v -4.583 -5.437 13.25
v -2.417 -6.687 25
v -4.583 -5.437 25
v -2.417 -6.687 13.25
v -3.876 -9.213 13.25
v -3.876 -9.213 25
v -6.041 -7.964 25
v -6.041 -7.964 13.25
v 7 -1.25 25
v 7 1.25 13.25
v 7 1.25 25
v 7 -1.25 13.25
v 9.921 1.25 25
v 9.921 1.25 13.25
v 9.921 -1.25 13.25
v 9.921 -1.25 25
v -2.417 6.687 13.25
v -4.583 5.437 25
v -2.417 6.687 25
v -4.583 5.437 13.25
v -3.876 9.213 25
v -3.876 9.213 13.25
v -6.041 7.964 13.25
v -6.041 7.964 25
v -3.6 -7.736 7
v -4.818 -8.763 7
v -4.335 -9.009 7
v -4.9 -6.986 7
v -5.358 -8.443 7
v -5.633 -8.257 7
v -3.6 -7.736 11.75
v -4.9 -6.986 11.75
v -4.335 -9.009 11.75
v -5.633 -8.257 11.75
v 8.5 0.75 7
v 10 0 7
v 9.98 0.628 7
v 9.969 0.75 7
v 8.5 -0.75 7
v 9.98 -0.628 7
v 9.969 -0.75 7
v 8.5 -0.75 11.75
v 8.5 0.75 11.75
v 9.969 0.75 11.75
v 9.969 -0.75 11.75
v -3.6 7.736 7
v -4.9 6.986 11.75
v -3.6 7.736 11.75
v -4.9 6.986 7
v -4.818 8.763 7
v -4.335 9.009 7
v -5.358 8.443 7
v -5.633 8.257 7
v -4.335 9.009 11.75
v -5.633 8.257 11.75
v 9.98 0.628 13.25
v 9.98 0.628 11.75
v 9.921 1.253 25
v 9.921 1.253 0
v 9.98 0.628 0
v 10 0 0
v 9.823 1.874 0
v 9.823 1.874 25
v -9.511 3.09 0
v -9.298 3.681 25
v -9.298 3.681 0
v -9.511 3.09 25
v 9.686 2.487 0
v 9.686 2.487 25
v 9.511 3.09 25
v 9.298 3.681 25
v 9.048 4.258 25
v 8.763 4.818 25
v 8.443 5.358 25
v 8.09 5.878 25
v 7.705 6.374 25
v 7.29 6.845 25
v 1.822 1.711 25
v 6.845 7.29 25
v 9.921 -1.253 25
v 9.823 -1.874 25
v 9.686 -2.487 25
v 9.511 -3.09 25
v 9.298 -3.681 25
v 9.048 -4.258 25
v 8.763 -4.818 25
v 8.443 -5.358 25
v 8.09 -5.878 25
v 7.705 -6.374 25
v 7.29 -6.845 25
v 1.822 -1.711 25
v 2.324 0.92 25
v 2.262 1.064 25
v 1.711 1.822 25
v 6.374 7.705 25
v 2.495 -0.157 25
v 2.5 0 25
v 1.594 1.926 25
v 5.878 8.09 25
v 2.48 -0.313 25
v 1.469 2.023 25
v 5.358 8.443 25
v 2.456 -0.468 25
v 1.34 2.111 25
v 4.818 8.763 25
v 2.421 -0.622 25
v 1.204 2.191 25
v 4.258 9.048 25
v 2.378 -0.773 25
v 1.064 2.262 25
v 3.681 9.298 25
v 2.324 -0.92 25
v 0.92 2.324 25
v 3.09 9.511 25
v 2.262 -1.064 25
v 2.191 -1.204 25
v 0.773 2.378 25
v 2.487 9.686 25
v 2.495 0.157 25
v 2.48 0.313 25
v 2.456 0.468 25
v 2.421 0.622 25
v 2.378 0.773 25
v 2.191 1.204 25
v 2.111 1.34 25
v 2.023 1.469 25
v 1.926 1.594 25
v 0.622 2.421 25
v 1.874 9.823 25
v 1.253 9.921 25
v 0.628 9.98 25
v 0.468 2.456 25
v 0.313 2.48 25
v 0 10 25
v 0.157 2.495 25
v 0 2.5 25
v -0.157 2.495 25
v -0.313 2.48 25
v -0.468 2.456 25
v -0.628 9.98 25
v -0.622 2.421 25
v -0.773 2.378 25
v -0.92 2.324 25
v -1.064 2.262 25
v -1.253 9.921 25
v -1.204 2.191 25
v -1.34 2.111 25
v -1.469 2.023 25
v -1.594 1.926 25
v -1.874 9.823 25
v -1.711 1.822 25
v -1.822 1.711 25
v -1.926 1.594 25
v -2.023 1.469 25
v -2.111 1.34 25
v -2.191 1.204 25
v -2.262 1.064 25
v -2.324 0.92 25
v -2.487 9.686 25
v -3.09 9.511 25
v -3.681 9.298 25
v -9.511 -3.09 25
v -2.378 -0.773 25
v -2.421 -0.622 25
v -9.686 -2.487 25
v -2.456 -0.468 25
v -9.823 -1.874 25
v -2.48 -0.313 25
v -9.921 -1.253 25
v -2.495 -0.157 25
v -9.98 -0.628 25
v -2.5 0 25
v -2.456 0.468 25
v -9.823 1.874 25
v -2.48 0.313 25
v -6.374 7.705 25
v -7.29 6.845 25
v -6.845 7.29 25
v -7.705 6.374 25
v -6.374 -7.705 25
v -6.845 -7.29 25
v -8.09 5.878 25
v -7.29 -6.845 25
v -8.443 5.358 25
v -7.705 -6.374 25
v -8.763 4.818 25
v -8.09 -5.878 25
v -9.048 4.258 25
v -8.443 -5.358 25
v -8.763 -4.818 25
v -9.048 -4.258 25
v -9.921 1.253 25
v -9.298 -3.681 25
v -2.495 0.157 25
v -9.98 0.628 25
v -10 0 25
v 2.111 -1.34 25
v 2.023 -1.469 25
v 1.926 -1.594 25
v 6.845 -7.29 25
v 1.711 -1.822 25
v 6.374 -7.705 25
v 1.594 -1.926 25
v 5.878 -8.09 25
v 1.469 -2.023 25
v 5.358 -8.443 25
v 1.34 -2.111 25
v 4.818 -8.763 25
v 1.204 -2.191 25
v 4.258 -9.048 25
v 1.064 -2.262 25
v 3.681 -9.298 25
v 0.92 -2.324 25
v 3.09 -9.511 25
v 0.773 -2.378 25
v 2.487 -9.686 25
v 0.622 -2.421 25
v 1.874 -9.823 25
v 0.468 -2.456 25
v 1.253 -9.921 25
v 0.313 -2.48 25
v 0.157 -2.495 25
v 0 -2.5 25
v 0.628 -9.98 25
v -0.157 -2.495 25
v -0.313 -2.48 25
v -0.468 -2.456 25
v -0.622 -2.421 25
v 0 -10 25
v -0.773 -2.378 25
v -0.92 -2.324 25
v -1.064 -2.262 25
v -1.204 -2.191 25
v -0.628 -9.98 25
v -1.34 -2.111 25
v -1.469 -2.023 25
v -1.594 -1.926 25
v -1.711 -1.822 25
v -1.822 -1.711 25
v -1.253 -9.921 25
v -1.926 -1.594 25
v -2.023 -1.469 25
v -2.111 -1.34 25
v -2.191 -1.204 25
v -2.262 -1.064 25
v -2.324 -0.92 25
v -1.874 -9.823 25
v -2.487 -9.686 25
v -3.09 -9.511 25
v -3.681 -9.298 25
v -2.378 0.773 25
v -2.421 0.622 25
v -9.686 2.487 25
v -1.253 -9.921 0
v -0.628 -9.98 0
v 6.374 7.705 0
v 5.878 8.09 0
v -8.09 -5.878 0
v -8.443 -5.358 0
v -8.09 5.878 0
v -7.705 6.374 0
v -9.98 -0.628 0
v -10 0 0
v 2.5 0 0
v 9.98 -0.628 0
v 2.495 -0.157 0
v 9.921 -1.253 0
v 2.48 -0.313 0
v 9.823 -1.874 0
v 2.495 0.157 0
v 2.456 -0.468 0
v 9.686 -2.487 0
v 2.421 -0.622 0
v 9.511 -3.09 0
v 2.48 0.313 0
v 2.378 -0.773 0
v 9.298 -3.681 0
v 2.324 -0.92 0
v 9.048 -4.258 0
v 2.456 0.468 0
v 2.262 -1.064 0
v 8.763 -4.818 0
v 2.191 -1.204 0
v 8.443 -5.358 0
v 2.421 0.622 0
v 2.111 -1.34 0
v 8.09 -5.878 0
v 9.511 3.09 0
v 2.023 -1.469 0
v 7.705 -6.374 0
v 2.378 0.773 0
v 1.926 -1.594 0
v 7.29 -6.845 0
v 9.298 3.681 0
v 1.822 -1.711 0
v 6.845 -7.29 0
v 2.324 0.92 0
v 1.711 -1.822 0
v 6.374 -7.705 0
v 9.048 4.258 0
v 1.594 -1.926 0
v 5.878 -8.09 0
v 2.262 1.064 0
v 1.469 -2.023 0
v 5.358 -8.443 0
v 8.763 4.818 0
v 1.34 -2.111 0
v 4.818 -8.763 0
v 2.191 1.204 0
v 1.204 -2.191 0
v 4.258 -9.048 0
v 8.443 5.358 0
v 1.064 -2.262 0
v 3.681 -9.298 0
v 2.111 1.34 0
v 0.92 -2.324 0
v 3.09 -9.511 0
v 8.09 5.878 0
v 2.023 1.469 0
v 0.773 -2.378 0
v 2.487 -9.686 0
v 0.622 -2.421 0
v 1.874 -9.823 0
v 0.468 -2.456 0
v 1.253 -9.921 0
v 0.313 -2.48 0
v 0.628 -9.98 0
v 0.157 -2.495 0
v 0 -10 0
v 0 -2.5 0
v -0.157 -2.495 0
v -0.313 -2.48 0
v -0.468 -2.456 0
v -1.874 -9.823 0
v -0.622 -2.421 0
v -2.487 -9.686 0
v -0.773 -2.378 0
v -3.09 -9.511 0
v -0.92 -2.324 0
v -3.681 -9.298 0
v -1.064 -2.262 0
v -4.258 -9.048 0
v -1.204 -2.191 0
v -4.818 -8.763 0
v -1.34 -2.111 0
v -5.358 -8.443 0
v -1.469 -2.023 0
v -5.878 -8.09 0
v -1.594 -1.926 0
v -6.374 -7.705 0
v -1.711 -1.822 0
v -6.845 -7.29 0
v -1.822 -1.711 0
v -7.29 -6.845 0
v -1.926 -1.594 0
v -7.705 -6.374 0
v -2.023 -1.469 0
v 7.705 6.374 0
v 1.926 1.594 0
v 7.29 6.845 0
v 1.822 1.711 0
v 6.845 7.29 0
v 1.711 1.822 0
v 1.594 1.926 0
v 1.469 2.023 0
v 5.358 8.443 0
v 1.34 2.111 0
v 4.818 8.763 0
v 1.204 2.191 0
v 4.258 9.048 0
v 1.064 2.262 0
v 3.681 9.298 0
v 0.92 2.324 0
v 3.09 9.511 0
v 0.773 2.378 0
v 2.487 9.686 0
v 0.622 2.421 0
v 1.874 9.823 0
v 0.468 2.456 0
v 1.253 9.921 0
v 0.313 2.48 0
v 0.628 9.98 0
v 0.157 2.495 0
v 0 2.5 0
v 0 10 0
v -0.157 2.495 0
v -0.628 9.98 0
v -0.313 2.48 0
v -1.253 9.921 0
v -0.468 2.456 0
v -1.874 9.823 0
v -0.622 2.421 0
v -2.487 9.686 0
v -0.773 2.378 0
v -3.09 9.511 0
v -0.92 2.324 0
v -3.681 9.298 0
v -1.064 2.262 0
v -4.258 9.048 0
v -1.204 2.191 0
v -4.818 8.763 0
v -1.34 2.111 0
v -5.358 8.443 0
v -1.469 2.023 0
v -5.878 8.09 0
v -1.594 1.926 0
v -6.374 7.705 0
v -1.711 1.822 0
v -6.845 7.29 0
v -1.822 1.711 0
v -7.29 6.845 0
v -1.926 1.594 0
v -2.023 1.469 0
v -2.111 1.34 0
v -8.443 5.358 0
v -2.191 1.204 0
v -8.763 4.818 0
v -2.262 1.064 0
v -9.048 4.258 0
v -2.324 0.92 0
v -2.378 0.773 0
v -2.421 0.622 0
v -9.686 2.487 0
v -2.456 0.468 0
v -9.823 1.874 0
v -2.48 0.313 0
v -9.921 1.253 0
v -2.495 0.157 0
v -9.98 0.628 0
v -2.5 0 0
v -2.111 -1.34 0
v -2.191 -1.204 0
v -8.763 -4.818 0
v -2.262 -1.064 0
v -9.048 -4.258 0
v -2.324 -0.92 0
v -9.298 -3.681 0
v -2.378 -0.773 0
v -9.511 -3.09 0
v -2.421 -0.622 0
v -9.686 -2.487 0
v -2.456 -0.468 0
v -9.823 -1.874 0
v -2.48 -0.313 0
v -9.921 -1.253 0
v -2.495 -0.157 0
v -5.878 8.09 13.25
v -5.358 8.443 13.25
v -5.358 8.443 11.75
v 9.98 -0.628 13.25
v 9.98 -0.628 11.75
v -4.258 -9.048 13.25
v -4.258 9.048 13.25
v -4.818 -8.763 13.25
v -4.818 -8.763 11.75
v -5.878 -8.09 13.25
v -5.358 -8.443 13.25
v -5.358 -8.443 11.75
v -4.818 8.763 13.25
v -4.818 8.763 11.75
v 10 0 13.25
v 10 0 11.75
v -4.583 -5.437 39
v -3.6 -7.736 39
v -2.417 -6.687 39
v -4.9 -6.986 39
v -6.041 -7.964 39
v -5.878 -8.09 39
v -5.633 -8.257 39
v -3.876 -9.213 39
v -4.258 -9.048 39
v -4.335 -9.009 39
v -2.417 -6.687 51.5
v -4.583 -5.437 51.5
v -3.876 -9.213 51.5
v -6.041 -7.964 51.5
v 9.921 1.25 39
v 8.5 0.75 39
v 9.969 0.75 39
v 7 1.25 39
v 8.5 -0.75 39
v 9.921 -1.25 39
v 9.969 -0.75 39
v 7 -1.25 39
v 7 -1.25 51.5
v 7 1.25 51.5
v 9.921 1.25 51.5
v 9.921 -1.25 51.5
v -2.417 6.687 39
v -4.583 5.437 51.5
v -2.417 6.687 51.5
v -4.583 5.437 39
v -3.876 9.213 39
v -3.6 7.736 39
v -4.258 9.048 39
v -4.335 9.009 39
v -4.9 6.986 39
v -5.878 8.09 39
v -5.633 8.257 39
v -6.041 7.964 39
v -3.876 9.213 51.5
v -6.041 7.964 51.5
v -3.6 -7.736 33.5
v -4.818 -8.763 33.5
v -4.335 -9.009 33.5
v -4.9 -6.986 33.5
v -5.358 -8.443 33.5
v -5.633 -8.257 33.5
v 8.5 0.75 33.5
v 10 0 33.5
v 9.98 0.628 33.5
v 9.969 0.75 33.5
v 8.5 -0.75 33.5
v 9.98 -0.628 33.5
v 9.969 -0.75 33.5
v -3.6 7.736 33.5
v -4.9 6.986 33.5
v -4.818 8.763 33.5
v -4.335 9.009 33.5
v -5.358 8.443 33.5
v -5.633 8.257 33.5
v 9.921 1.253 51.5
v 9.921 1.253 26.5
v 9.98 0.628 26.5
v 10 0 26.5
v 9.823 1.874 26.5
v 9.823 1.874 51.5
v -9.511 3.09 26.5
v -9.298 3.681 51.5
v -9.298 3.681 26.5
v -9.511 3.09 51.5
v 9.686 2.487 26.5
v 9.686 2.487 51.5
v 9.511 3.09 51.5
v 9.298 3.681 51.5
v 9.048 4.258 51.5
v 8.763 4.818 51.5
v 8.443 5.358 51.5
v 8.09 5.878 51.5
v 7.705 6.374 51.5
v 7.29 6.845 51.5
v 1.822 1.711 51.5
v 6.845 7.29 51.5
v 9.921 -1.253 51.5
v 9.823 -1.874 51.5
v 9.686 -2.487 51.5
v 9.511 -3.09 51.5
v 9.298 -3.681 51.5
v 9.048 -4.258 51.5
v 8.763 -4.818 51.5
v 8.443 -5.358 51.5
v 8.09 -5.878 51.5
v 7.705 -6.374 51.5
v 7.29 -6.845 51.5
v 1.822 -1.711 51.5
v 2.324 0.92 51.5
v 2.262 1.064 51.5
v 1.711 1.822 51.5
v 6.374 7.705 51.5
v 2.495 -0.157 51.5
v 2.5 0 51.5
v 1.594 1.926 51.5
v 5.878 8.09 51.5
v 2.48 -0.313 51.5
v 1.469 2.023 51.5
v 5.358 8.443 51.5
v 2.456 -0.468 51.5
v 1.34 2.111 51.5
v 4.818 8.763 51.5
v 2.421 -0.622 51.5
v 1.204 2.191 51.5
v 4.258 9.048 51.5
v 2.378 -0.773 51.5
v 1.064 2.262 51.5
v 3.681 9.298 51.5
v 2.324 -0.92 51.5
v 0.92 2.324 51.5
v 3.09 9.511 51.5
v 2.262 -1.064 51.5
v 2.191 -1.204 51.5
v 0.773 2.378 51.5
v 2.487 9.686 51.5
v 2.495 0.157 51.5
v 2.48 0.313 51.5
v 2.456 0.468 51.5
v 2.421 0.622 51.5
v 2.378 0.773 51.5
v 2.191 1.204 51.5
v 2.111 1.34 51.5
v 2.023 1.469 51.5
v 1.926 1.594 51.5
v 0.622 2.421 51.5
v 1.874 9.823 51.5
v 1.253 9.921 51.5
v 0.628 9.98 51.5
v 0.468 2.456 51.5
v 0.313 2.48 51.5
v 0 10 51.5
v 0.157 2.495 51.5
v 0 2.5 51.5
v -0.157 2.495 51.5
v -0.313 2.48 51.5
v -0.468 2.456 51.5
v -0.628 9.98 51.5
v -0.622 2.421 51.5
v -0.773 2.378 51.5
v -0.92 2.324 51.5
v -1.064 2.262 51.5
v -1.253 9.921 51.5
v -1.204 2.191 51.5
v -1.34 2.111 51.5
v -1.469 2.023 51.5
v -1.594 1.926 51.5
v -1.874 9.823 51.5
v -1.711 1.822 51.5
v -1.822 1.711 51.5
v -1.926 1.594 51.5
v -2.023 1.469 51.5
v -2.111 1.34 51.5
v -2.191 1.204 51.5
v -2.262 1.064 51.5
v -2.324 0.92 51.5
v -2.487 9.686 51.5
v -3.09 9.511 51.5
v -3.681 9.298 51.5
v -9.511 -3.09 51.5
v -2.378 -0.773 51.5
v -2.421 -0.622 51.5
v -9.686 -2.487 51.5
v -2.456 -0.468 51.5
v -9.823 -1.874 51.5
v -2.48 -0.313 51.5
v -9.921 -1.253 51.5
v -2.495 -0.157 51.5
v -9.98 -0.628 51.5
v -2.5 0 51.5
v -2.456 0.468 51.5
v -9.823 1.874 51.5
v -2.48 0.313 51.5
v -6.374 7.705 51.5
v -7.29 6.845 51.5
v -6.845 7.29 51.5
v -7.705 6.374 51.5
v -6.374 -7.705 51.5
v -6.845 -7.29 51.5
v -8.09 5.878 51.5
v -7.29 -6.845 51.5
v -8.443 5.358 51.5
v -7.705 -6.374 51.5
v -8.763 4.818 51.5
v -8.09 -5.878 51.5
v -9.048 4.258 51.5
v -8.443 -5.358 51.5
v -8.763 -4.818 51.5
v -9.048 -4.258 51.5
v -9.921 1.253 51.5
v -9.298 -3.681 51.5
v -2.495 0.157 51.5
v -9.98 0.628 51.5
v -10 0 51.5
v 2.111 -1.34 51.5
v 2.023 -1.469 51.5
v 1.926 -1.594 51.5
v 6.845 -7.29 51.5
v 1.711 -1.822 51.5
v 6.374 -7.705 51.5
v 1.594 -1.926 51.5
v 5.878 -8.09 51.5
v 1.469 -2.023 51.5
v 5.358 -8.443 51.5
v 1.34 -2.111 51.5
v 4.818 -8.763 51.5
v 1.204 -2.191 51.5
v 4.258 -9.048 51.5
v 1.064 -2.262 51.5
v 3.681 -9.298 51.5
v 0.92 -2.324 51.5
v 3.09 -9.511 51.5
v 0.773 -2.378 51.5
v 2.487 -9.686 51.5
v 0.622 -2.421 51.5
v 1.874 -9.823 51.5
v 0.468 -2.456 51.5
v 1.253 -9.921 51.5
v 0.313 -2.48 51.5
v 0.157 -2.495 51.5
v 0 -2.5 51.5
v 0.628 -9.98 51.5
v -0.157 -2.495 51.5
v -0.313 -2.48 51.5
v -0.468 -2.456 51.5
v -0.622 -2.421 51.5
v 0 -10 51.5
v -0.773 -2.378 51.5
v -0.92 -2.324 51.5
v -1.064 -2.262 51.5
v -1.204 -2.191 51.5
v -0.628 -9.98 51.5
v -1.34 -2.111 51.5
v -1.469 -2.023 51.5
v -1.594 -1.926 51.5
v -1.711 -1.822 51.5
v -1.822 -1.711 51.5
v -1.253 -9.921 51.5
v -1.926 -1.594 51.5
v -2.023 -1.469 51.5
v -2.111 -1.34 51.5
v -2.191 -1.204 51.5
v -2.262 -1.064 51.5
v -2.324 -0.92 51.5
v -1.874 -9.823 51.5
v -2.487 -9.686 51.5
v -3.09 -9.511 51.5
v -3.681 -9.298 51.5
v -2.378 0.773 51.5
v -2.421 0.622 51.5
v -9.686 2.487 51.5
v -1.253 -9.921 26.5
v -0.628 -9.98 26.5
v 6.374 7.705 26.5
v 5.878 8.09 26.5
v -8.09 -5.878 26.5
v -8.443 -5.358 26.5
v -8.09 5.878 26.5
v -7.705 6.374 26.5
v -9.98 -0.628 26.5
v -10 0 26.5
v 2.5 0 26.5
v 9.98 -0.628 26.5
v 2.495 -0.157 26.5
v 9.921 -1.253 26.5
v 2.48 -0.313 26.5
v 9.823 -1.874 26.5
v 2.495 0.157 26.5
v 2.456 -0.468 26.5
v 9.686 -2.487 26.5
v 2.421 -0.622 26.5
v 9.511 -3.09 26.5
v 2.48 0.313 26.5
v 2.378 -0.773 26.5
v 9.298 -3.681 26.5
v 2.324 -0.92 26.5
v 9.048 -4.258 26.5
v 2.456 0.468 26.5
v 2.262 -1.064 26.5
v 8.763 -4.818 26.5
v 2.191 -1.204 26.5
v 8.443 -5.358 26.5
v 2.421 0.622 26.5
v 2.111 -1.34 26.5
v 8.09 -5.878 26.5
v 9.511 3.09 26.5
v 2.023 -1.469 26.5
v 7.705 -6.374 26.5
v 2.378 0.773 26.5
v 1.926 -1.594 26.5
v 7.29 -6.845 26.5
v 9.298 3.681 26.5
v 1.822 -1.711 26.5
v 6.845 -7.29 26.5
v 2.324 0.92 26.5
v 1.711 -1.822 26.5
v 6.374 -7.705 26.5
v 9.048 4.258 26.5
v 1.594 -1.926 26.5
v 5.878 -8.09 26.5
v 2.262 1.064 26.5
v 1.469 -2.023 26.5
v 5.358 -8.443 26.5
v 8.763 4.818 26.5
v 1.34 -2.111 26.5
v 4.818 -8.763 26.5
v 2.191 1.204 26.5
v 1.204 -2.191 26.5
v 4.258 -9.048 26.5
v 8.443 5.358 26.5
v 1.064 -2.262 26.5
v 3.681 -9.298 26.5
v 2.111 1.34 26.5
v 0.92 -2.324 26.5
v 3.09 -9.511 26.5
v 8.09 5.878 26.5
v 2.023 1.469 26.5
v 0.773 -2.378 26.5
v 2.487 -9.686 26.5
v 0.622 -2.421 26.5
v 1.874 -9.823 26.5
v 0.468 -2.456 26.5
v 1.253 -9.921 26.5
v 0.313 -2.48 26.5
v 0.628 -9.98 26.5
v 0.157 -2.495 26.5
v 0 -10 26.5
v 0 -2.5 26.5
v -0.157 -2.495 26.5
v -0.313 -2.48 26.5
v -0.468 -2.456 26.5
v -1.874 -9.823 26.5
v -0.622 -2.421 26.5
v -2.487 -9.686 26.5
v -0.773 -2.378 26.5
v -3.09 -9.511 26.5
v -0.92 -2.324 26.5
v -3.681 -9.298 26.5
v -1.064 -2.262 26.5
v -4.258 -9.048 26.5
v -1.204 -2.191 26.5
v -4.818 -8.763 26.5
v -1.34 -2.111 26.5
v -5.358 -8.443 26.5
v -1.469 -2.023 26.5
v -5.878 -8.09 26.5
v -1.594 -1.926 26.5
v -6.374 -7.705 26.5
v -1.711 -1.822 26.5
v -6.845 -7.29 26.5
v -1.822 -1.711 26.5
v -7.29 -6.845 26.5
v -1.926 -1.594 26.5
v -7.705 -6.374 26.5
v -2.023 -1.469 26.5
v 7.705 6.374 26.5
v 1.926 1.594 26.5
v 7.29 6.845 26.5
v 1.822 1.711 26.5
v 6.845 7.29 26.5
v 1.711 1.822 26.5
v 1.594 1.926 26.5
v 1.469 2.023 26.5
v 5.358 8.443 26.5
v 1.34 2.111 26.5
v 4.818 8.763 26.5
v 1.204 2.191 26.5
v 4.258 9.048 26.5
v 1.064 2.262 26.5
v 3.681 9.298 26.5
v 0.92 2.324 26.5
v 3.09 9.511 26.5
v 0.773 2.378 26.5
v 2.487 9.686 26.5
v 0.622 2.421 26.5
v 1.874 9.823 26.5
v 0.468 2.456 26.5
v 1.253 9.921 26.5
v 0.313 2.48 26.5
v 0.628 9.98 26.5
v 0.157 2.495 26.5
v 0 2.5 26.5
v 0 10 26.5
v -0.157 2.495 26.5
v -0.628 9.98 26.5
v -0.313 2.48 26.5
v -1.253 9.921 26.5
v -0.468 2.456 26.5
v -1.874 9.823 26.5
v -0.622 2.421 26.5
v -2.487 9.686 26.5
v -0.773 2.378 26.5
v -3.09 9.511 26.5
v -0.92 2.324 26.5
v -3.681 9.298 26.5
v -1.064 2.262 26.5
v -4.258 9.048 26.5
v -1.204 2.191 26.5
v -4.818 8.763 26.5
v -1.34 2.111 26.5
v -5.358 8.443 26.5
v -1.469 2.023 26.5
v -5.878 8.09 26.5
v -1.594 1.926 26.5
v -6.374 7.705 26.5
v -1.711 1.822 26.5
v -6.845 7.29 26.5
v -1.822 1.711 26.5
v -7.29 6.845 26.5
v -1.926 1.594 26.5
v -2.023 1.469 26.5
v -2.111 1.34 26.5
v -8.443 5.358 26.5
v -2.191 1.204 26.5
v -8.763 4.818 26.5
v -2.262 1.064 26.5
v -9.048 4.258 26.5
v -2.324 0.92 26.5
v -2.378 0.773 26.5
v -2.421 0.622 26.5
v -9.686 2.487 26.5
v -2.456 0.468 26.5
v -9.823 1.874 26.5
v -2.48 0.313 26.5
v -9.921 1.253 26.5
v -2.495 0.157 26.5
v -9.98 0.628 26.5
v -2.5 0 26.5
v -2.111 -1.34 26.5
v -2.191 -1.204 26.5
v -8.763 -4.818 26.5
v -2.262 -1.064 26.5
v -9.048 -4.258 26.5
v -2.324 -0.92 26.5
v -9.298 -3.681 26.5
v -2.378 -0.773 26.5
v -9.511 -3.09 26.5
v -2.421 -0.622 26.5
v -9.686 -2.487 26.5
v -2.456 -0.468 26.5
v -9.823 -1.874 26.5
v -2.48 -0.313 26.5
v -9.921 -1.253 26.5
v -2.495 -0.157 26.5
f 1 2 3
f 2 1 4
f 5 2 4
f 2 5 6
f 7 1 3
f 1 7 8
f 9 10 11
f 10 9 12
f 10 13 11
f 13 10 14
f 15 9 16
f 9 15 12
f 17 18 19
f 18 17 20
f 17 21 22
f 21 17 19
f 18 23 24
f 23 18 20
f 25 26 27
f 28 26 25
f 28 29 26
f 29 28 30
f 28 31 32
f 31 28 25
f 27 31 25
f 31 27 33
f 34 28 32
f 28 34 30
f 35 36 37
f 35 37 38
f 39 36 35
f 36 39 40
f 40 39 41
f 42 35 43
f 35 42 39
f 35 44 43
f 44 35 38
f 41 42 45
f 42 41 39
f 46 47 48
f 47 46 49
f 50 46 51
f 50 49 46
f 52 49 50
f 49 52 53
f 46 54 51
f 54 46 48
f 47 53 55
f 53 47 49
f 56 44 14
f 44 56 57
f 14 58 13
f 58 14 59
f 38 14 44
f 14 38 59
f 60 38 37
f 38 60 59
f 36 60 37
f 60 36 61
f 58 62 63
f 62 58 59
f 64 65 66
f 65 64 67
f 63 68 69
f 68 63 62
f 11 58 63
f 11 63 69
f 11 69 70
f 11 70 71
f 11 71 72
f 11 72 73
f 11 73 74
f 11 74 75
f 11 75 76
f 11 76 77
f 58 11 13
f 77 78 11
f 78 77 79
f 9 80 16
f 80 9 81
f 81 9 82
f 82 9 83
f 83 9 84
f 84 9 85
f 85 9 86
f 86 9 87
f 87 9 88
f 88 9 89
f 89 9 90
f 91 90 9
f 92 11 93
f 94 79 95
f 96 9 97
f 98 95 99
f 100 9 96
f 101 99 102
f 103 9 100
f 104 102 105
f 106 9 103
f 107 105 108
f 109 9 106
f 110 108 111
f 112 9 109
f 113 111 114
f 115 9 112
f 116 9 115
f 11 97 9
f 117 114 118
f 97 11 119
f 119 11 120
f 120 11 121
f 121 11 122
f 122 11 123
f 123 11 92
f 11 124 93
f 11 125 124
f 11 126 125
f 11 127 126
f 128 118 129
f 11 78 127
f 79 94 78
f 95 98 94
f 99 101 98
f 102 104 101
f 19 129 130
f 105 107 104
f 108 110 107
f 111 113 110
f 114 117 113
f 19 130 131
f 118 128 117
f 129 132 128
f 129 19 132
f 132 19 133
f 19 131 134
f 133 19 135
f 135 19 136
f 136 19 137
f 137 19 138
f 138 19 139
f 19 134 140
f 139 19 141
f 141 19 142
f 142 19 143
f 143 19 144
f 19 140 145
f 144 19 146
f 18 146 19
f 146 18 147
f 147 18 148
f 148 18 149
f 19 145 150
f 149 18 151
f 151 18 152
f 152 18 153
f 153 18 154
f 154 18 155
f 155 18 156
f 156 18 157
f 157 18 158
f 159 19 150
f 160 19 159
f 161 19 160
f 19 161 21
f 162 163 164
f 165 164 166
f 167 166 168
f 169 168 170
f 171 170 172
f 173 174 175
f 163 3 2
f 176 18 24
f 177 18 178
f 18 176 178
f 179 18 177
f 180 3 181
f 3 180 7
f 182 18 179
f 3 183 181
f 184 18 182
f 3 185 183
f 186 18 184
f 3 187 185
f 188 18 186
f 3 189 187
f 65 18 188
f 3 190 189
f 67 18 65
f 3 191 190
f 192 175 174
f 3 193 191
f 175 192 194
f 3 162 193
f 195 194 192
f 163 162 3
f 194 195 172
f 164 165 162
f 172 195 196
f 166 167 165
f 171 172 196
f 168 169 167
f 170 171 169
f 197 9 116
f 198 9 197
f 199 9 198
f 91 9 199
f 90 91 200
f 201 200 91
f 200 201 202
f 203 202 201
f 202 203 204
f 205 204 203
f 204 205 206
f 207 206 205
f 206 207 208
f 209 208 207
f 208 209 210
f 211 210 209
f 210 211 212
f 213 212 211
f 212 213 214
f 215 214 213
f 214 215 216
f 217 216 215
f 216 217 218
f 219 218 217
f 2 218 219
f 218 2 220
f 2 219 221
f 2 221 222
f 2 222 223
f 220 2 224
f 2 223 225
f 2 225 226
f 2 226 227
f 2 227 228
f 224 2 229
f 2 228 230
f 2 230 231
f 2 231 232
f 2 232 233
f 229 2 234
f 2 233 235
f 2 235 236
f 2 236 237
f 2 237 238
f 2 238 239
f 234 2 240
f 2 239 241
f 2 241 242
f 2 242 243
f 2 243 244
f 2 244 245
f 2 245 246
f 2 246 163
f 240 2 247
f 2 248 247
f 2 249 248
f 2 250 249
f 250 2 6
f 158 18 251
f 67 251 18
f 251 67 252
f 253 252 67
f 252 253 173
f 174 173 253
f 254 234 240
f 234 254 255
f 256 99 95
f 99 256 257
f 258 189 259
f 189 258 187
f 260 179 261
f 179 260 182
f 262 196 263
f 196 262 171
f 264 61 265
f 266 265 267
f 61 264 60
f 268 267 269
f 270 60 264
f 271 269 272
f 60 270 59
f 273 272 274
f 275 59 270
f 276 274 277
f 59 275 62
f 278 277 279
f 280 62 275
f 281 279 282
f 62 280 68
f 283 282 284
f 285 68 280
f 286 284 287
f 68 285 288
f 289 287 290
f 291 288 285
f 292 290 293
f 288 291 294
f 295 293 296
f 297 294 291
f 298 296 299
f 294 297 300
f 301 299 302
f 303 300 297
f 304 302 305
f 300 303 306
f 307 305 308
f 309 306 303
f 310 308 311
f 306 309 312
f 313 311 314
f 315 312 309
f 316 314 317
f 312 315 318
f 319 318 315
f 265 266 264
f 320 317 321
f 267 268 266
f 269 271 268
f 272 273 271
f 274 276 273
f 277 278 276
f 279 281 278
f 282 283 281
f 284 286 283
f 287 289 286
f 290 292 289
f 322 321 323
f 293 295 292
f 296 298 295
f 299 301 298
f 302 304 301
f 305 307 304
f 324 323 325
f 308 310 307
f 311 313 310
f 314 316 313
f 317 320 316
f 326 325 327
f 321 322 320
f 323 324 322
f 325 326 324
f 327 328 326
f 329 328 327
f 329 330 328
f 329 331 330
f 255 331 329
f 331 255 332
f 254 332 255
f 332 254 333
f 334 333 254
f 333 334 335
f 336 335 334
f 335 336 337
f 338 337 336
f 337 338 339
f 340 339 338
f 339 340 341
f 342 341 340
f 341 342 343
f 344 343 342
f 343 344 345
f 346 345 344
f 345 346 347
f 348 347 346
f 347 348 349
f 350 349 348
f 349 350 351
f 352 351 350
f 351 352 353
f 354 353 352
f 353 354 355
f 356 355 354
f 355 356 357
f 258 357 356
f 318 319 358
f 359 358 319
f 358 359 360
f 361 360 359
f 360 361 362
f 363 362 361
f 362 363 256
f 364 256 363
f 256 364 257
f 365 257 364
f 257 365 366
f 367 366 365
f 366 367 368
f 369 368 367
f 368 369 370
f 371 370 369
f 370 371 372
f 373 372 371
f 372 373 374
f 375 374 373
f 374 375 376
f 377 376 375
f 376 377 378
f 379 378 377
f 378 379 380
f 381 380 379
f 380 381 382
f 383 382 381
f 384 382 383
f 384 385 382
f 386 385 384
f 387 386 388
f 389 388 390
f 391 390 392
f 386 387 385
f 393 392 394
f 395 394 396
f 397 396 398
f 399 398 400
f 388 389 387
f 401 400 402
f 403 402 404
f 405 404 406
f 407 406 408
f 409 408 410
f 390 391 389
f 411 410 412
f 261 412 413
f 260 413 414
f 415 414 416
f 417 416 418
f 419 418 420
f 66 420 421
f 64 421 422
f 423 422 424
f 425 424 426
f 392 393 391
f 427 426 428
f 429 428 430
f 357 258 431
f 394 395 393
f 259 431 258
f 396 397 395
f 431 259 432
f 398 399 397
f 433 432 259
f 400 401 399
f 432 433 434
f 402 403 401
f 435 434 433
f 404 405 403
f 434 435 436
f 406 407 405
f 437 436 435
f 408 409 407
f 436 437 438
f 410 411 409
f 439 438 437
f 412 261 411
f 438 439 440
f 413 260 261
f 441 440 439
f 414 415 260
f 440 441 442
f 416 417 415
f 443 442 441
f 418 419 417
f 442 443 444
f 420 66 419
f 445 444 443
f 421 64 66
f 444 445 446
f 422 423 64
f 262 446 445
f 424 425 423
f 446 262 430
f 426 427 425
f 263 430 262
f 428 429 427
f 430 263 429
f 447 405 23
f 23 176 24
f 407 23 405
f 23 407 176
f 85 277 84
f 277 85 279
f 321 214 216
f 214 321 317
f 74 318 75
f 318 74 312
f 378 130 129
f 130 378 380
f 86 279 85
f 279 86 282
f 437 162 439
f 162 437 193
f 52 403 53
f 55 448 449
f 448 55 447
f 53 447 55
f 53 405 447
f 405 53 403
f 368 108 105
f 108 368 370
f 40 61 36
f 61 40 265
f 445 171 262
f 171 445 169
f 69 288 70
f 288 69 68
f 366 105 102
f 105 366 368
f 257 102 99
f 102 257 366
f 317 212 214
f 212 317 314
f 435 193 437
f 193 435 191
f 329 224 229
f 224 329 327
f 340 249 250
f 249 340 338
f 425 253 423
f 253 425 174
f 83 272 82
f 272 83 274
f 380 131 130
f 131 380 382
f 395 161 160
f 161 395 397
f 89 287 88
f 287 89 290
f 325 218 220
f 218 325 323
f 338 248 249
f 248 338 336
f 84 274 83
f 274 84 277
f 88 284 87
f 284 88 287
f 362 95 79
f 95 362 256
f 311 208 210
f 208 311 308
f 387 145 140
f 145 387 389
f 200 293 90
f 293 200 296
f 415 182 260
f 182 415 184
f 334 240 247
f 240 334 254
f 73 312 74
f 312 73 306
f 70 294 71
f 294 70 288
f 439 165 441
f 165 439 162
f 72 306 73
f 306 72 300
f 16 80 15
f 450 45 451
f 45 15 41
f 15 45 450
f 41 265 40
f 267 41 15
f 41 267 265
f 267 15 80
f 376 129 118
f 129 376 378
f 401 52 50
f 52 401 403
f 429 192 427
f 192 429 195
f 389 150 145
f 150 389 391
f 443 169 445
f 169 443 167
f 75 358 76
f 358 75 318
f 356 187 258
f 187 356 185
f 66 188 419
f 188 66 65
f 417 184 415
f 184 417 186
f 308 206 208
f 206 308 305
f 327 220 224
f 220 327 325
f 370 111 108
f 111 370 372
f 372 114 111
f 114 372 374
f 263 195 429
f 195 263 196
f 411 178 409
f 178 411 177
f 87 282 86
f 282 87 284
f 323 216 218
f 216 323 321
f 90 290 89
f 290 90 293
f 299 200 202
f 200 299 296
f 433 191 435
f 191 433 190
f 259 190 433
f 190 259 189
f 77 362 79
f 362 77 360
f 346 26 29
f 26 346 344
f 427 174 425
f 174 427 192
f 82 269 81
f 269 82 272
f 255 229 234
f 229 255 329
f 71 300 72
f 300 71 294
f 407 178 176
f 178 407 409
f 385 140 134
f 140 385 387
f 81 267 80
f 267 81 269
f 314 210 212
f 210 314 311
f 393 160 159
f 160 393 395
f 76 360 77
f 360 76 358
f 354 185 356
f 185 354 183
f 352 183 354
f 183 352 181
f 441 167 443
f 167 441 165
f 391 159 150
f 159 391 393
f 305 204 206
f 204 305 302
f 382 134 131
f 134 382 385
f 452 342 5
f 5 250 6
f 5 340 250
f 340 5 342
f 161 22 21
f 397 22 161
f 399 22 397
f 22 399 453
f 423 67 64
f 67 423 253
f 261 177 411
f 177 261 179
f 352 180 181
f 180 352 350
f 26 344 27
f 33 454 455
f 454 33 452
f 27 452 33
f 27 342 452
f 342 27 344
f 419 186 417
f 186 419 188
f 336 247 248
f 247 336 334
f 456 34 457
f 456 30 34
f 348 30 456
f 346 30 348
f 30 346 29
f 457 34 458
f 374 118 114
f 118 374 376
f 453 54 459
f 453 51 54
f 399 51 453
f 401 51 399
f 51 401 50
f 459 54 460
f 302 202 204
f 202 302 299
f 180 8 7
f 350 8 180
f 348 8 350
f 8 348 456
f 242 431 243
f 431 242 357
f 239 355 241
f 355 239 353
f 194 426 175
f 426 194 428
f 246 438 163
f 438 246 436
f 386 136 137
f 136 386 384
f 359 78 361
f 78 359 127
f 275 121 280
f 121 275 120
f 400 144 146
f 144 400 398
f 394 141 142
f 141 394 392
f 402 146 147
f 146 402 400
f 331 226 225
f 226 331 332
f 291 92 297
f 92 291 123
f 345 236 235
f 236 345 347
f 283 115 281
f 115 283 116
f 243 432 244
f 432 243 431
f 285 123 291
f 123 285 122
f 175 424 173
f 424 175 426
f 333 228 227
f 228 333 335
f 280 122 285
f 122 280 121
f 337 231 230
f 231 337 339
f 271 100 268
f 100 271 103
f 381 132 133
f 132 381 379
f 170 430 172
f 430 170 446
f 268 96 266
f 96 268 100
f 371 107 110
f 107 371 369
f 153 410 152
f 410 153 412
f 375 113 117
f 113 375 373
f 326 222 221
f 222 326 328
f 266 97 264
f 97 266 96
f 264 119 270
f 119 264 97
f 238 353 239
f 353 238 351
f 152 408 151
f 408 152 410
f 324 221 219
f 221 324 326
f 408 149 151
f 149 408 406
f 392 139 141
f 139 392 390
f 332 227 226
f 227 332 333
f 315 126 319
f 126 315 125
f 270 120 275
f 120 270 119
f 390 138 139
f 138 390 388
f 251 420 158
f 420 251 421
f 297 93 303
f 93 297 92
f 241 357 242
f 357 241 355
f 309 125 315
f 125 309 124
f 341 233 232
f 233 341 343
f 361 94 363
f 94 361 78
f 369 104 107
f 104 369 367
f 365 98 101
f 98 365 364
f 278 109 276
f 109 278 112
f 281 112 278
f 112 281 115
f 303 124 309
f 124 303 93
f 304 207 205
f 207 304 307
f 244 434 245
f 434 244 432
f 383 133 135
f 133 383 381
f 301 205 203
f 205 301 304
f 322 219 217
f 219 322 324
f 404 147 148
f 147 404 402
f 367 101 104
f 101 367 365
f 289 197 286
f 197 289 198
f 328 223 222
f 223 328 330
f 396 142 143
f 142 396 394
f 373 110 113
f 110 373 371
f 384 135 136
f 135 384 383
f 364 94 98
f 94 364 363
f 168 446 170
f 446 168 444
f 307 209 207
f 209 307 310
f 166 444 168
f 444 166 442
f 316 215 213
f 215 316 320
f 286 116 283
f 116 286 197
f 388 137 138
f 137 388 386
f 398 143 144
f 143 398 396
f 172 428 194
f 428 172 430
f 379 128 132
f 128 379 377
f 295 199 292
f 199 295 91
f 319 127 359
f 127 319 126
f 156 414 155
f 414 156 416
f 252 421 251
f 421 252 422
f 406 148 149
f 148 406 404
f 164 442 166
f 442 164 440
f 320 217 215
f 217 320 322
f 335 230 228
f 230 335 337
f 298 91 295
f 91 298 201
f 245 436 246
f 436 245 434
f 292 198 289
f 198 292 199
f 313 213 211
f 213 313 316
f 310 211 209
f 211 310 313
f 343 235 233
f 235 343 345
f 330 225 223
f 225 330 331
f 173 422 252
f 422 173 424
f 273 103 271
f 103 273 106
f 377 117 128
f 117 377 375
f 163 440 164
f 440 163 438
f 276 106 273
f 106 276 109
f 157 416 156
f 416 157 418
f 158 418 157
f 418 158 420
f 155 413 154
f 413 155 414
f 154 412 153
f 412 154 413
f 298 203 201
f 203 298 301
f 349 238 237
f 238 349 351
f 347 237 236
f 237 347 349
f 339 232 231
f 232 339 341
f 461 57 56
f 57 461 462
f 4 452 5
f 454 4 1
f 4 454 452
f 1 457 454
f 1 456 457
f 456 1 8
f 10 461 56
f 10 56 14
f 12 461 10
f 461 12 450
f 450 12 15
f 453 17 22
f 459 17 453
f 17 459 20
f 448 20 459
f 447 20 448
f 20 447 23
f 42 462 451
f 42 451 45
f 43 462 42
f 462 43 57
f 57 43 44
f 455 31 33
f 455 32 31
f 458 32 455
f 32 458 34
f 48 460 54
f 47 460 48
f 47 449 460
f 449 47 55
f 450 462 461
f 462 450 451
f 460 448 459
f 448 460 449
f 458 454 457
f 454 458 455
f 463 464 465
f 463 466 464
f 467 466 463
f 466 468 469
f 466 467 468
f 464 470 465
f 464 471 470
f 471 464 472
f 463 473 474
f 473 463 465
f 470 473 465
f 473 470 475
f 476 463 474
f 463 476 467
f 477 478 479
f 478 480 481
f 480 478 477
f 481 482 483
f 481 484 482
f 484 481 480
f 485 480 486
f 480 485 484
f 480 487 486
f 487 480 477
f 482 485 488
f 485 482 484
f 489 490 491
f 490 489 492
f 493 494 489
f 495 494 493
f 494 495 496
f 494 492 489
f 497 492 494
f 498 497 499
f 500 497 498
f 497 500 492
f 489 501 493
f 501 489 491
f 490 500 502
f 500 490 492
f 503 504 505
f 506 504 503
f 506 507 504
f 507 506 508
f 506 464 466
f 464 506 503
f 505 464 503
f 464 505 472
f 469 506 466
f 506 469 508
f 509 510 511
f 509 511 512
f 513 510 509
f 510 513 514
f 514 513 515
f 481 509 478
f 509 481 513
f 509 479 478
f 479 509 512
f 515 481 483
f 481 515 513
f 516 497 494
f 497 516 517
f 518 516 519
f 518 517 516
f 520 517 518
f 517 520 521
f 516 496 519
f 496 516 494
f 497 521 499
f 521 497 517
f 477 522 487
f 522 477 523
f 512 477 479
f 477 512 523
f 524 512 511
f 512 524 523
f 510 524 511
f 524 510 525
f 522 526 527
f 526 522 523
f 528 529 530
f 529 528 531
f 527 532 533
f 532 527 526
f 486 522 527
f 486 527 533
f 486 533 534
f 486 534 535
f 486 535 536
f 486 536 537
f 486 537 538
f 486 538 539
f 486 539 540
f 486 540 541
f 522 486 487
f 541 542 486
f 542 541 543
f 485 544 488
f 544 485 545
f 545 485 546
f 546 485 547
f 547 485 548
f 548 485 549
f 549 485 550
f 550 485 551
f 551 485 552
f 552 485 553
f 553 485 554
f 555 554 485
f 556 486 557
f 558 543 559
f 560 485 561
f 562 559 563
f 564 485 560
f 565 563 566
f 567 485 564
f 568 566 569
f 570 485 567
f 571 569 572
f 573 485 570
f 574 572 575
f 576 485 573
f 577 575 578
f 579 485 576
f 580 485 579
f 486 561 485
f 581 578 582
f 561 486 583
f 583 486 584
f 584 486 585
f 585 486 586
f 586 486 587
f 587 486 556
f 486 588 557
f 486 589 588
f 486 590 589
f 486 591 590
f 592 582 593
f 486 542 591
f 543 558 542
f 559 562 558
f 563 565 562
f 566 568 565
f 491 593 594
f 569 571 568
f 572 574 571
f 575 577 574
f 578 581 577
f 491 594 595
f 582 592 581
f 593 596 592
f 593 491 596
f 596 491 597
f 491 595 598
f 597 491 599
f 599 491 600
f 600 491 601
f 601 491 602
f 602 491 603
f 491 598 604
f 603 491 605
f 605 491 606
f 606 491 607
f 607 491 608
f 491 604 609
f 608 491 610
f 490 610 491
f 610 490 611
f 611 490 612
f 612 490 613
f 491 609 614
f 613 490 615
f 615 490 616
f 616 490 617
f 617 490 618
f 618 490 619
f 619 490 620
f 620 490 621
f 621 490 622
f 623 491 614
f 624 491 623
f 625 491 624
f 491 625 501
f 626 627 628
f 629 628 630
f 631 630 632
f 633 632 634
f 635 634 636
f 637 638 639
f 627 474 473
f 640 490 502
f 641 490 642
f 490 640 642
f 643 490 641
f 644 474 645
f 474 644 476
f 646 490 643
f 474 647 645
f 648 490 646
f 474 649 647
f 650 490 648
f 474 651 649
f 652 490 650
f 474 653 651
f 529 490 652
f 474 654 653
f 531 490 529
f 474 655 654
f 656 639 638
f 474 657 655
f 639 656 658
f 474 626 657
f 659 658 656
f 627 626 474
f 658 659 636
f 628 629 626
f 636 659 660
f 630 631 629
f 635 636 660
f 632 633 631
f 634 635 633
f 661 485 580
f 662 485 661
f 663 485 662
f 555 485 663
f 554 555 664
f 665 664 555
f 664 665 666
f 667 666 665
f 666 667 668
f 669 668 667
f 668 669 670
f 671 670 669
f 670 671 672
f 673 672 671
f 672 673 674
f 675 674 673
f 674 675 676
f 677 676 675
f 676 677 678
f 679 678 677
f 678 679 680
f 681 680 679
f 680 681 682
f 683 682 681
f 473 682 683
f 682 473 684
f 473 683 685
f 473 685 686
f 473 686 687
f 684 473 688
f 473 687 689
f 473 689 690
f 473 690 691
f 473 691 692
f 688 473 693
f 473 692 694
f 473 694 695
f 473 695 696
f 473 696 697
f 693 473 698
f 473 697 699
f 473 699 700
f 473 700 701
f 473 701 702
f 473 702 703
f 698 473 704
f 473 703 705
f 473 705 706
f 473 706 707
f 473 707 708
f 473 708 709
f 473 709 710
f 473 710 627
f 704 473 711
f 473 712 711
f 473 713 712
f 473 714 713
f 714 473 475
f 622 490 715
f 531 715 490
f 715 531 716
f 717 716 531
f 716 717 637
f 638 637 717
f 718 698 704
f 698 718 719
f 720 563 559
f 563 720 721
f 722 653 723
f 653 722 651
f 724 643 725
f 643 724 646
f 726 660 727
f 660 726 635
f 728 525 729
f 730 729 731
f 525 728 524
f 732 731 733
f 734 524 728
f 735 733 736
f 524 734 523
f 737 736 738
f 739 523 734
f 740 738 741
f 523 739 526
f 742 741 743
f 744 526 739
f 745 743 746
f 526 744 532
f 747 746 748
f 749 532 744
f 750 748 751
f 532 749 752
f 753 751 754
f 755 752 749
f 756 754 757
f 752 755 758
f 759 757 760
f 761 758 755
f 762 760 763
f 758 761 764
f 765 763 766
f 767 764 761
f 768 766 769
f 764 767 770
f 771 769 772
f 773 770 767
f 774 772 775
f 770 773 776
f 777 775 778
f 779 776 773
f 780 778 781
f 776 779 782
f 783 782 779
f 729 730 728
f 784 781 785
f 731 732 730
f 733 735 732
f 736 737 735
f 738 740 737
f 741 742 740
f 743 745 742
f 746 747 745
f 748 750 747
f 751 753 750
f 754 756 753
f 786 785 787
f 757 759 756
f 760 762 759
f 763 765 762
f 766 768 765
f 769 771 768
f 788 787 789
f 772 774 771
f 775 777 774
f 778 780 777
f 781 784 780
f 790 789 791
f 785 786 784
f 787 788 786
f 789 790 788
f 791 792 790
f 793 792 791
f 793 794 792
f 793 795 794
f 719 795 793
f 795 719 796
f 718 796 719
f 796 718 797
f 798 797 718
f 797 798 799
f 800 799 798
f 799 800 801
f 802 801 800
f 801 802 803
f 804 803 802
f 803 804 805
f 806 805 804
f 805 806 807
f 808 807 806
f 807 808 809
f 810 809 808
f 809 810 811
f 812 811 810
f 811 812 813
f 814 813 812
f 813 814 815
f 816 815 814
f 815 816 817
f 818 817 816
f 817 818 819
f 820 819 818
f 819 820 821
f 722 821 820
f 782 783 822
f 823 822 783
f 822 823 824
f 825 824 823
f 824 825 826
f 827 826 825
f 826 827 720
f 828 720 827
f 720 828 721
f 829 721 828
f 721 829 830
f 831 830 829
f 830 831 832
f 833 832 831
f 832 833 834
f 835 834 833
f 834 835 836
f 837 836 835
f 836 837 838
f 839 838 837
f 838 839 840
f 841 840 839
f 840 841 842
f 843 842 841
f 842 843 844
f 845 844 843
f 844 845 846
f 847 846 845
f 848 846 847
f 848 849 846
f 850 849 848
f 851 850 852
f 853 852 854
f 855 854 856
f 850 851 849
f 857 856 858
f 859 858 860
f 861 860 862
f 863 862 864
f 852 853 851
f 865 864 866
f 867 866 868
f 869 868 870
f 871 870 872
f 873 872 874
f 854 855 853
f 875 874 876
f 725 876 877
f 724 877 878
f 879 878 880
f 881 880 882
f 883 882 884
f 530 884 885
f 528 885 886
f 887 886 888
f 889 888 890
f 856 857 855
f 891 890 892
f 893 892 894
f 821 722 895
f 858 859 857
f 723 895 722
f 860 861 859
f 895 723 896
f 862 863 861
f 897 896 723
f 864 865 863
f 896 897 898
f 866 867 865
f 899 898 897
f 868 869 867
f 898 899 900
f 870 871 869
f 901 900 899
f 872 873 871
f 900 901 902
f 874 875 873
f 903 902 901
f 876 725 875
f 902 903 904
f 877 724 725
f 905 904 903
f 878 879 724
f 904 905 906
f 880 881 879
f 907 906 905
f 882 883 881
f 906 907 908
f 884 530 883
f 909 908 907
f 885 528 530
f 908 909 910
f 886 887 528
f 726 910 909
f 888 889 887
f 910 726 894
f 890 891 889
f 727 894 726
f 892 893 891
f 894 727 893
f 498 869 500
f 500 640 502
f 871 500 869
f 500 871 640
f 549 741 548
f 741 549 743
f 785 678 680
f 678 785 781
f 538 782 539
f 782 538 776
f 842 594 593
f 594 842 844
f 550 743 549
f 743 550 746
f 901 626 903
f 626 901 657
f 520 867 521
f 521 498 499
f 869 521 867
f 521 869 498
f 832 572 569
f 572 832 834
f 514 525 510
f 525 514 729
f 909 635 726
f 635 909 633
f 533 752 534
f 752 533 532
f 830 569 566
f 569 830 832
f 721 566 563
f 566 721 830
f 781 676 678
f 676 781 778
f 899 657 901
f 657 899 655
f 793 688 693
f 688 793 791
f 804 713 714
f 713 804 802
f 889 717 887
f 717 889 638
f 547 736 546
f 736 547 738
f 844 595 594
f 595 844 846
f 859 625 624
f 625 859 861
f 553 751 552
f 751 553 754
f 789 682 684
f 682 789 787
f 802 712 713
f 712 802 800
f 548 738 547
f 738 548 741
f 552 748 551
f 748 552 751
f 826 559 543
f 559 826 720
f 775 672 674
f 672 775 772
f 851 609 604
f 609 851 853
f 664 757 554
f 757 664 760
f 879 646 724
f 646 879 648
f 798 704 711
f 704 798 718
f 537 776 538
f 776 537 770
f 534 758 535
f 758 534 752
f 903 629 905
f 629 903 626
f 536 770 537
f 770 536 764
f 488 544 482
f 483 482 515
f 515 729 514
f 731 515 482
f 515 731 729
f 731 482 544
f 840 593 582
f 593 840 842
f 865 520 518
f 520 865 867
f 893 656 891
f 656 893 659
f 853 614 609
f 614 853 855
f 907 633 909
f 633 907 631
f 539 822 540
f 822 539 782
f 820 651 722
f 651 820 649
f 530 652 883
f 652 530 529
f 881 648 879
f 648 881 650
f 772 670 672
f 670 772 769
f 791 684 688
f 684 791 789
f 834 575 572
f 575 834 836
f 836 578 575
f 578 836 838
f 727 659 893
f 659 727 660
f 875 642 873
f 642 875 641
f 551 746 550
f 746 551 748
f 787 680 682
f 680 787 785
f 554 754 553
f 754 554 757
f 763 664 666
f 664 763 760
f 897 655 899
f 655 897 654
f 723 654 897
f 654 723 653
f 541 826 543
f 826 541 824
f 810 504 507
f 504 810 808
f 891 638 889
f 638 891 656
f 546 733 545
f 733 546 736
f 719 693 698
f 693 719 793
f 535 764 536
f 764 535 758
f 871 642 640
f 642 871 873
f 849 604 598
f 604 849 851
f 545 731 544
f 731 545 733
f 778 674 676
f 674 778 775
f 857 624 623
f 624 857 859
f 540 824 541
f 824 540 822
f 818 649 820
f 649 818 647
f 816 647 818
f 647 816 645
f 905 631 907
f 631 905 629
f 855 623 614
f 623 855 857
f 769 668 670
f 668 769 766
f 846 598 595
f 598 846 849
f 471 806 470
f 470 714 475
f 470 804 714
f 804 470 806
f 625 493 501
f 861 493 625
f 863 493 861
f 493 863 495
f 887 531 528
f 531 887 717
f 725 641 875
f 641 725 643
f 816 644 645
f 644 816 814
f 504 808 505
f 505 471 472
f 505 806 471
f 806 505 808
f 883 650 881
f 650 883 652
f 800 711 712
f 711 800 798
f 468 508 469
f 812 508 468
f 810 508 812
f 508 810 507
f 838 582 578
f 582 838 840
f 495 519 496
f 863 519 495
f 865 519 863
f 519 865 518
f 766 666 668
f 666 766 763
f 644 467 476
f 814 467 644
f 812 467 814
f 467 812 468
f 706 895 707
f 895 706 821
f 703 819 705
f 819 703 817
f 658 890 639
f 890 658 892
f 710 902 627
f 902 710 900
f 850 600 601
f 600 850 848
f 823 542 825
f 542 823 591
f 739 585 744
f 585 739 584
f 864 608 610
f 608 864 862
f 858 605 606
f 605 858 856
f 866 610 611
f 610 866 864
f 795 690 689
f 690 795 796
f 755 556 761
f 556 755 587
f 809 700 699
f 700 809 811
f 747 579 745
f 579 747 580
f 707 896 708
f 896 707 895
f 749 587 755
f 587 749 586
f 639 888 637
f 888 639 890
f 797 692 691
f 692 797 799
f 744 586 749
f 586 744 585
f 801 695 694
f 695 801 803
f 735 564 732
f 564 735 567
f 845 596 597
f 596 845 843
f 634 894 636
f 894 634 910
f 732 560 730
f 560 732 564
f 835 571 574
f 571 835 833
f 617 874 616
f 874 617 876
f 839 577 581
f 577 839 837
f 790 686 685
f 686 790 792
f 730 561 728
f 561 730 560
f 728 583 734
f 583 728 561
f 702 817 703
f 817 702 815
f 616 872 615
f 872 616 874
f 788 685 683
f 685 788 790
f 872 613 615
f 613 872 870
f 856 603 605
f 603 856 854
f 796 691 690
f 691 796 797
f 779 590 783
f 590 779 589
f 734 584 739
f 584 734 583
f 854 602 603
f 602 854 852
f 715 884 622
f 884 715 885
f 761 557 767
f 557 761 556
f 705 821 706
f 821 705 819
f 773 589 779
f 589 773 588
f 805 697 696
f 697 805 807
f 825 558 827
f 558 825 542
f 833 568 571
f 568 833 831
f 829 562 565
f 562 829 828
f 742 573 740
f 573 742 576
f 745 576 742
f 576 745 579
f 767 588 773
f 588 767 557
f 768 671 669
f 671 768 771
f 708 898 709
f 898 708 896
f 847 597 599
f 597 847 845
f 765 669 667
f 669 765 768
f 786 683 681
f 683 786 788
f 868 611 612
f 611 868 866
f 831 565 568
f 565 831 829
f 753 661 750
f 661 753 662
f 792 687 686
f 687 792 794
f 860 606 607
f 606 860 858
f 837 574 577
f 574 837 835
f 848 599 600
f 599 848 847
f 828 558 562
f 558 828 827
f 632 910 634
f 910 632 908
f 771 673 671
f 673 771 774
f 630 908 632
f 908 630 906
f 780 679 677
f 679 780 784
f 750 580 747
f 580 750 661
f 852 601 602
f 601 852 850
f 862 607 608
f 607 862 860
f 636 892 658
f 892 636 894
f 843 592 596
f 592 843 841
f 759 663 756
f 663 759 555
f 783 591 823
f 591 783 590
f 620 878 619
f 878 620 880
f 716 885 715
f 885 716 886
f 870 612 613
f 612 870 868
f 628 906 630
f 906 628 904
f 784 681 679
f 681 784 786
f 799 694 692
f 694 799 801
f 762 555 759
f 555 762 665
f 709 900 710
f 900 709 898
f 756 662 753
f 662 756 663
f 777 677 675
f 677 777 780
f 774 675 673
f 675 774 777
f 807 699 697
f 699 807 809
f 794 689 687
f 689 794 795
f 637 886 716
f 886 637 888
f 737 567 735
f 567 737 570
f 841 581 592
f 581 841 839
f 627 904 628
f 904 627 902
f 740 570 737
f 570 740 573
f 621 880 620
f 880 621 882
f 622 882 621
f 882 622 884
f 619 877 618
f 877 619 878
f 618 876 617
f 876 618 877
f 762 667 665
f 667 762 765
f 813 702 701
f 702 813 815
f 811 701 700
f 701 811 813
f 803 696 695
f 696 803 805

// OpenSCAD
// Define dimensions
cylinder_diameter = 20;
cylinder_height = 25;                      // Adjusted height to better match original model
hole_diameter = 5;
groove_width = 2.5;                        // Enhanced groove dimensions for better detailing
groove_depth = 6;                          // Adjusted groove depth for more pronounced look
spacer_thickness = 1.5;                    // Adjusted spacer thickness for proper spacing
locking_groove_depth = 3;                  // New variable for locking groove mechanism
locking_groove_width = 1.5;
locking_groove_position = 7;               // Position of locking grooves from the base

// Cylinder Body
module cylinder_body() {
    difference() {
        // Main cylindrical body with central hole
        cylinder(d=cylinder_diameter, h=cylinder_height, $fn=100);
        cylinder(d=hole_diameter, h=cylinder_height, $fn=100);
        
        // Adding alignment grooves
        for (i = [-120, 0, 120]) {
            rotate([0, 0, i]) {
                translate([cylinder_diameter/2 - groove_depth/2, -groove_width/2, cylinder_height / 2]) {
                    cube([groove_depth, groove_width, cylinder_height], center=false);
                }
            }
        }

        // Adding locking grooves on the top part of the cylindrical body
        for (i = [-120, 0, 120]) {
            rotate([0, 0, i]) {
                translate([cylinder_diameter/2 - locking_groove_depth/2, -locking_groove_width/2, locking_groove_position]) {
                    cube([locking_groove_depth, locking_groove_width, cylinder_height/3], center=false);
                }
            }
        }
    }
}

// Internal Spacer
module internal_spacer() {
    difference() {
        // Thin disk-like spacer
        cylinder(d=cylinder_diameter, h=spacer_thickness, $fn=100);
        cylinder(d=hole_diameter, h=spacer_thickness, $fn=100);
    }
}

// Assembly
module assembly() {
    translate([0, 0, 0]) {                  // Lower cylinder
        cylinder_body();
    }
    translate([0, 0, (cylinder_height - spacer_thickness) / 2]) {   // Spacer in the middle
        internal_spacer();
    }
    translate([0, 0, cylinder_height + spacer_thickness]) {         // Upper cylinder
        cylinder_body();
    }
}

// Main Module
assembly();
